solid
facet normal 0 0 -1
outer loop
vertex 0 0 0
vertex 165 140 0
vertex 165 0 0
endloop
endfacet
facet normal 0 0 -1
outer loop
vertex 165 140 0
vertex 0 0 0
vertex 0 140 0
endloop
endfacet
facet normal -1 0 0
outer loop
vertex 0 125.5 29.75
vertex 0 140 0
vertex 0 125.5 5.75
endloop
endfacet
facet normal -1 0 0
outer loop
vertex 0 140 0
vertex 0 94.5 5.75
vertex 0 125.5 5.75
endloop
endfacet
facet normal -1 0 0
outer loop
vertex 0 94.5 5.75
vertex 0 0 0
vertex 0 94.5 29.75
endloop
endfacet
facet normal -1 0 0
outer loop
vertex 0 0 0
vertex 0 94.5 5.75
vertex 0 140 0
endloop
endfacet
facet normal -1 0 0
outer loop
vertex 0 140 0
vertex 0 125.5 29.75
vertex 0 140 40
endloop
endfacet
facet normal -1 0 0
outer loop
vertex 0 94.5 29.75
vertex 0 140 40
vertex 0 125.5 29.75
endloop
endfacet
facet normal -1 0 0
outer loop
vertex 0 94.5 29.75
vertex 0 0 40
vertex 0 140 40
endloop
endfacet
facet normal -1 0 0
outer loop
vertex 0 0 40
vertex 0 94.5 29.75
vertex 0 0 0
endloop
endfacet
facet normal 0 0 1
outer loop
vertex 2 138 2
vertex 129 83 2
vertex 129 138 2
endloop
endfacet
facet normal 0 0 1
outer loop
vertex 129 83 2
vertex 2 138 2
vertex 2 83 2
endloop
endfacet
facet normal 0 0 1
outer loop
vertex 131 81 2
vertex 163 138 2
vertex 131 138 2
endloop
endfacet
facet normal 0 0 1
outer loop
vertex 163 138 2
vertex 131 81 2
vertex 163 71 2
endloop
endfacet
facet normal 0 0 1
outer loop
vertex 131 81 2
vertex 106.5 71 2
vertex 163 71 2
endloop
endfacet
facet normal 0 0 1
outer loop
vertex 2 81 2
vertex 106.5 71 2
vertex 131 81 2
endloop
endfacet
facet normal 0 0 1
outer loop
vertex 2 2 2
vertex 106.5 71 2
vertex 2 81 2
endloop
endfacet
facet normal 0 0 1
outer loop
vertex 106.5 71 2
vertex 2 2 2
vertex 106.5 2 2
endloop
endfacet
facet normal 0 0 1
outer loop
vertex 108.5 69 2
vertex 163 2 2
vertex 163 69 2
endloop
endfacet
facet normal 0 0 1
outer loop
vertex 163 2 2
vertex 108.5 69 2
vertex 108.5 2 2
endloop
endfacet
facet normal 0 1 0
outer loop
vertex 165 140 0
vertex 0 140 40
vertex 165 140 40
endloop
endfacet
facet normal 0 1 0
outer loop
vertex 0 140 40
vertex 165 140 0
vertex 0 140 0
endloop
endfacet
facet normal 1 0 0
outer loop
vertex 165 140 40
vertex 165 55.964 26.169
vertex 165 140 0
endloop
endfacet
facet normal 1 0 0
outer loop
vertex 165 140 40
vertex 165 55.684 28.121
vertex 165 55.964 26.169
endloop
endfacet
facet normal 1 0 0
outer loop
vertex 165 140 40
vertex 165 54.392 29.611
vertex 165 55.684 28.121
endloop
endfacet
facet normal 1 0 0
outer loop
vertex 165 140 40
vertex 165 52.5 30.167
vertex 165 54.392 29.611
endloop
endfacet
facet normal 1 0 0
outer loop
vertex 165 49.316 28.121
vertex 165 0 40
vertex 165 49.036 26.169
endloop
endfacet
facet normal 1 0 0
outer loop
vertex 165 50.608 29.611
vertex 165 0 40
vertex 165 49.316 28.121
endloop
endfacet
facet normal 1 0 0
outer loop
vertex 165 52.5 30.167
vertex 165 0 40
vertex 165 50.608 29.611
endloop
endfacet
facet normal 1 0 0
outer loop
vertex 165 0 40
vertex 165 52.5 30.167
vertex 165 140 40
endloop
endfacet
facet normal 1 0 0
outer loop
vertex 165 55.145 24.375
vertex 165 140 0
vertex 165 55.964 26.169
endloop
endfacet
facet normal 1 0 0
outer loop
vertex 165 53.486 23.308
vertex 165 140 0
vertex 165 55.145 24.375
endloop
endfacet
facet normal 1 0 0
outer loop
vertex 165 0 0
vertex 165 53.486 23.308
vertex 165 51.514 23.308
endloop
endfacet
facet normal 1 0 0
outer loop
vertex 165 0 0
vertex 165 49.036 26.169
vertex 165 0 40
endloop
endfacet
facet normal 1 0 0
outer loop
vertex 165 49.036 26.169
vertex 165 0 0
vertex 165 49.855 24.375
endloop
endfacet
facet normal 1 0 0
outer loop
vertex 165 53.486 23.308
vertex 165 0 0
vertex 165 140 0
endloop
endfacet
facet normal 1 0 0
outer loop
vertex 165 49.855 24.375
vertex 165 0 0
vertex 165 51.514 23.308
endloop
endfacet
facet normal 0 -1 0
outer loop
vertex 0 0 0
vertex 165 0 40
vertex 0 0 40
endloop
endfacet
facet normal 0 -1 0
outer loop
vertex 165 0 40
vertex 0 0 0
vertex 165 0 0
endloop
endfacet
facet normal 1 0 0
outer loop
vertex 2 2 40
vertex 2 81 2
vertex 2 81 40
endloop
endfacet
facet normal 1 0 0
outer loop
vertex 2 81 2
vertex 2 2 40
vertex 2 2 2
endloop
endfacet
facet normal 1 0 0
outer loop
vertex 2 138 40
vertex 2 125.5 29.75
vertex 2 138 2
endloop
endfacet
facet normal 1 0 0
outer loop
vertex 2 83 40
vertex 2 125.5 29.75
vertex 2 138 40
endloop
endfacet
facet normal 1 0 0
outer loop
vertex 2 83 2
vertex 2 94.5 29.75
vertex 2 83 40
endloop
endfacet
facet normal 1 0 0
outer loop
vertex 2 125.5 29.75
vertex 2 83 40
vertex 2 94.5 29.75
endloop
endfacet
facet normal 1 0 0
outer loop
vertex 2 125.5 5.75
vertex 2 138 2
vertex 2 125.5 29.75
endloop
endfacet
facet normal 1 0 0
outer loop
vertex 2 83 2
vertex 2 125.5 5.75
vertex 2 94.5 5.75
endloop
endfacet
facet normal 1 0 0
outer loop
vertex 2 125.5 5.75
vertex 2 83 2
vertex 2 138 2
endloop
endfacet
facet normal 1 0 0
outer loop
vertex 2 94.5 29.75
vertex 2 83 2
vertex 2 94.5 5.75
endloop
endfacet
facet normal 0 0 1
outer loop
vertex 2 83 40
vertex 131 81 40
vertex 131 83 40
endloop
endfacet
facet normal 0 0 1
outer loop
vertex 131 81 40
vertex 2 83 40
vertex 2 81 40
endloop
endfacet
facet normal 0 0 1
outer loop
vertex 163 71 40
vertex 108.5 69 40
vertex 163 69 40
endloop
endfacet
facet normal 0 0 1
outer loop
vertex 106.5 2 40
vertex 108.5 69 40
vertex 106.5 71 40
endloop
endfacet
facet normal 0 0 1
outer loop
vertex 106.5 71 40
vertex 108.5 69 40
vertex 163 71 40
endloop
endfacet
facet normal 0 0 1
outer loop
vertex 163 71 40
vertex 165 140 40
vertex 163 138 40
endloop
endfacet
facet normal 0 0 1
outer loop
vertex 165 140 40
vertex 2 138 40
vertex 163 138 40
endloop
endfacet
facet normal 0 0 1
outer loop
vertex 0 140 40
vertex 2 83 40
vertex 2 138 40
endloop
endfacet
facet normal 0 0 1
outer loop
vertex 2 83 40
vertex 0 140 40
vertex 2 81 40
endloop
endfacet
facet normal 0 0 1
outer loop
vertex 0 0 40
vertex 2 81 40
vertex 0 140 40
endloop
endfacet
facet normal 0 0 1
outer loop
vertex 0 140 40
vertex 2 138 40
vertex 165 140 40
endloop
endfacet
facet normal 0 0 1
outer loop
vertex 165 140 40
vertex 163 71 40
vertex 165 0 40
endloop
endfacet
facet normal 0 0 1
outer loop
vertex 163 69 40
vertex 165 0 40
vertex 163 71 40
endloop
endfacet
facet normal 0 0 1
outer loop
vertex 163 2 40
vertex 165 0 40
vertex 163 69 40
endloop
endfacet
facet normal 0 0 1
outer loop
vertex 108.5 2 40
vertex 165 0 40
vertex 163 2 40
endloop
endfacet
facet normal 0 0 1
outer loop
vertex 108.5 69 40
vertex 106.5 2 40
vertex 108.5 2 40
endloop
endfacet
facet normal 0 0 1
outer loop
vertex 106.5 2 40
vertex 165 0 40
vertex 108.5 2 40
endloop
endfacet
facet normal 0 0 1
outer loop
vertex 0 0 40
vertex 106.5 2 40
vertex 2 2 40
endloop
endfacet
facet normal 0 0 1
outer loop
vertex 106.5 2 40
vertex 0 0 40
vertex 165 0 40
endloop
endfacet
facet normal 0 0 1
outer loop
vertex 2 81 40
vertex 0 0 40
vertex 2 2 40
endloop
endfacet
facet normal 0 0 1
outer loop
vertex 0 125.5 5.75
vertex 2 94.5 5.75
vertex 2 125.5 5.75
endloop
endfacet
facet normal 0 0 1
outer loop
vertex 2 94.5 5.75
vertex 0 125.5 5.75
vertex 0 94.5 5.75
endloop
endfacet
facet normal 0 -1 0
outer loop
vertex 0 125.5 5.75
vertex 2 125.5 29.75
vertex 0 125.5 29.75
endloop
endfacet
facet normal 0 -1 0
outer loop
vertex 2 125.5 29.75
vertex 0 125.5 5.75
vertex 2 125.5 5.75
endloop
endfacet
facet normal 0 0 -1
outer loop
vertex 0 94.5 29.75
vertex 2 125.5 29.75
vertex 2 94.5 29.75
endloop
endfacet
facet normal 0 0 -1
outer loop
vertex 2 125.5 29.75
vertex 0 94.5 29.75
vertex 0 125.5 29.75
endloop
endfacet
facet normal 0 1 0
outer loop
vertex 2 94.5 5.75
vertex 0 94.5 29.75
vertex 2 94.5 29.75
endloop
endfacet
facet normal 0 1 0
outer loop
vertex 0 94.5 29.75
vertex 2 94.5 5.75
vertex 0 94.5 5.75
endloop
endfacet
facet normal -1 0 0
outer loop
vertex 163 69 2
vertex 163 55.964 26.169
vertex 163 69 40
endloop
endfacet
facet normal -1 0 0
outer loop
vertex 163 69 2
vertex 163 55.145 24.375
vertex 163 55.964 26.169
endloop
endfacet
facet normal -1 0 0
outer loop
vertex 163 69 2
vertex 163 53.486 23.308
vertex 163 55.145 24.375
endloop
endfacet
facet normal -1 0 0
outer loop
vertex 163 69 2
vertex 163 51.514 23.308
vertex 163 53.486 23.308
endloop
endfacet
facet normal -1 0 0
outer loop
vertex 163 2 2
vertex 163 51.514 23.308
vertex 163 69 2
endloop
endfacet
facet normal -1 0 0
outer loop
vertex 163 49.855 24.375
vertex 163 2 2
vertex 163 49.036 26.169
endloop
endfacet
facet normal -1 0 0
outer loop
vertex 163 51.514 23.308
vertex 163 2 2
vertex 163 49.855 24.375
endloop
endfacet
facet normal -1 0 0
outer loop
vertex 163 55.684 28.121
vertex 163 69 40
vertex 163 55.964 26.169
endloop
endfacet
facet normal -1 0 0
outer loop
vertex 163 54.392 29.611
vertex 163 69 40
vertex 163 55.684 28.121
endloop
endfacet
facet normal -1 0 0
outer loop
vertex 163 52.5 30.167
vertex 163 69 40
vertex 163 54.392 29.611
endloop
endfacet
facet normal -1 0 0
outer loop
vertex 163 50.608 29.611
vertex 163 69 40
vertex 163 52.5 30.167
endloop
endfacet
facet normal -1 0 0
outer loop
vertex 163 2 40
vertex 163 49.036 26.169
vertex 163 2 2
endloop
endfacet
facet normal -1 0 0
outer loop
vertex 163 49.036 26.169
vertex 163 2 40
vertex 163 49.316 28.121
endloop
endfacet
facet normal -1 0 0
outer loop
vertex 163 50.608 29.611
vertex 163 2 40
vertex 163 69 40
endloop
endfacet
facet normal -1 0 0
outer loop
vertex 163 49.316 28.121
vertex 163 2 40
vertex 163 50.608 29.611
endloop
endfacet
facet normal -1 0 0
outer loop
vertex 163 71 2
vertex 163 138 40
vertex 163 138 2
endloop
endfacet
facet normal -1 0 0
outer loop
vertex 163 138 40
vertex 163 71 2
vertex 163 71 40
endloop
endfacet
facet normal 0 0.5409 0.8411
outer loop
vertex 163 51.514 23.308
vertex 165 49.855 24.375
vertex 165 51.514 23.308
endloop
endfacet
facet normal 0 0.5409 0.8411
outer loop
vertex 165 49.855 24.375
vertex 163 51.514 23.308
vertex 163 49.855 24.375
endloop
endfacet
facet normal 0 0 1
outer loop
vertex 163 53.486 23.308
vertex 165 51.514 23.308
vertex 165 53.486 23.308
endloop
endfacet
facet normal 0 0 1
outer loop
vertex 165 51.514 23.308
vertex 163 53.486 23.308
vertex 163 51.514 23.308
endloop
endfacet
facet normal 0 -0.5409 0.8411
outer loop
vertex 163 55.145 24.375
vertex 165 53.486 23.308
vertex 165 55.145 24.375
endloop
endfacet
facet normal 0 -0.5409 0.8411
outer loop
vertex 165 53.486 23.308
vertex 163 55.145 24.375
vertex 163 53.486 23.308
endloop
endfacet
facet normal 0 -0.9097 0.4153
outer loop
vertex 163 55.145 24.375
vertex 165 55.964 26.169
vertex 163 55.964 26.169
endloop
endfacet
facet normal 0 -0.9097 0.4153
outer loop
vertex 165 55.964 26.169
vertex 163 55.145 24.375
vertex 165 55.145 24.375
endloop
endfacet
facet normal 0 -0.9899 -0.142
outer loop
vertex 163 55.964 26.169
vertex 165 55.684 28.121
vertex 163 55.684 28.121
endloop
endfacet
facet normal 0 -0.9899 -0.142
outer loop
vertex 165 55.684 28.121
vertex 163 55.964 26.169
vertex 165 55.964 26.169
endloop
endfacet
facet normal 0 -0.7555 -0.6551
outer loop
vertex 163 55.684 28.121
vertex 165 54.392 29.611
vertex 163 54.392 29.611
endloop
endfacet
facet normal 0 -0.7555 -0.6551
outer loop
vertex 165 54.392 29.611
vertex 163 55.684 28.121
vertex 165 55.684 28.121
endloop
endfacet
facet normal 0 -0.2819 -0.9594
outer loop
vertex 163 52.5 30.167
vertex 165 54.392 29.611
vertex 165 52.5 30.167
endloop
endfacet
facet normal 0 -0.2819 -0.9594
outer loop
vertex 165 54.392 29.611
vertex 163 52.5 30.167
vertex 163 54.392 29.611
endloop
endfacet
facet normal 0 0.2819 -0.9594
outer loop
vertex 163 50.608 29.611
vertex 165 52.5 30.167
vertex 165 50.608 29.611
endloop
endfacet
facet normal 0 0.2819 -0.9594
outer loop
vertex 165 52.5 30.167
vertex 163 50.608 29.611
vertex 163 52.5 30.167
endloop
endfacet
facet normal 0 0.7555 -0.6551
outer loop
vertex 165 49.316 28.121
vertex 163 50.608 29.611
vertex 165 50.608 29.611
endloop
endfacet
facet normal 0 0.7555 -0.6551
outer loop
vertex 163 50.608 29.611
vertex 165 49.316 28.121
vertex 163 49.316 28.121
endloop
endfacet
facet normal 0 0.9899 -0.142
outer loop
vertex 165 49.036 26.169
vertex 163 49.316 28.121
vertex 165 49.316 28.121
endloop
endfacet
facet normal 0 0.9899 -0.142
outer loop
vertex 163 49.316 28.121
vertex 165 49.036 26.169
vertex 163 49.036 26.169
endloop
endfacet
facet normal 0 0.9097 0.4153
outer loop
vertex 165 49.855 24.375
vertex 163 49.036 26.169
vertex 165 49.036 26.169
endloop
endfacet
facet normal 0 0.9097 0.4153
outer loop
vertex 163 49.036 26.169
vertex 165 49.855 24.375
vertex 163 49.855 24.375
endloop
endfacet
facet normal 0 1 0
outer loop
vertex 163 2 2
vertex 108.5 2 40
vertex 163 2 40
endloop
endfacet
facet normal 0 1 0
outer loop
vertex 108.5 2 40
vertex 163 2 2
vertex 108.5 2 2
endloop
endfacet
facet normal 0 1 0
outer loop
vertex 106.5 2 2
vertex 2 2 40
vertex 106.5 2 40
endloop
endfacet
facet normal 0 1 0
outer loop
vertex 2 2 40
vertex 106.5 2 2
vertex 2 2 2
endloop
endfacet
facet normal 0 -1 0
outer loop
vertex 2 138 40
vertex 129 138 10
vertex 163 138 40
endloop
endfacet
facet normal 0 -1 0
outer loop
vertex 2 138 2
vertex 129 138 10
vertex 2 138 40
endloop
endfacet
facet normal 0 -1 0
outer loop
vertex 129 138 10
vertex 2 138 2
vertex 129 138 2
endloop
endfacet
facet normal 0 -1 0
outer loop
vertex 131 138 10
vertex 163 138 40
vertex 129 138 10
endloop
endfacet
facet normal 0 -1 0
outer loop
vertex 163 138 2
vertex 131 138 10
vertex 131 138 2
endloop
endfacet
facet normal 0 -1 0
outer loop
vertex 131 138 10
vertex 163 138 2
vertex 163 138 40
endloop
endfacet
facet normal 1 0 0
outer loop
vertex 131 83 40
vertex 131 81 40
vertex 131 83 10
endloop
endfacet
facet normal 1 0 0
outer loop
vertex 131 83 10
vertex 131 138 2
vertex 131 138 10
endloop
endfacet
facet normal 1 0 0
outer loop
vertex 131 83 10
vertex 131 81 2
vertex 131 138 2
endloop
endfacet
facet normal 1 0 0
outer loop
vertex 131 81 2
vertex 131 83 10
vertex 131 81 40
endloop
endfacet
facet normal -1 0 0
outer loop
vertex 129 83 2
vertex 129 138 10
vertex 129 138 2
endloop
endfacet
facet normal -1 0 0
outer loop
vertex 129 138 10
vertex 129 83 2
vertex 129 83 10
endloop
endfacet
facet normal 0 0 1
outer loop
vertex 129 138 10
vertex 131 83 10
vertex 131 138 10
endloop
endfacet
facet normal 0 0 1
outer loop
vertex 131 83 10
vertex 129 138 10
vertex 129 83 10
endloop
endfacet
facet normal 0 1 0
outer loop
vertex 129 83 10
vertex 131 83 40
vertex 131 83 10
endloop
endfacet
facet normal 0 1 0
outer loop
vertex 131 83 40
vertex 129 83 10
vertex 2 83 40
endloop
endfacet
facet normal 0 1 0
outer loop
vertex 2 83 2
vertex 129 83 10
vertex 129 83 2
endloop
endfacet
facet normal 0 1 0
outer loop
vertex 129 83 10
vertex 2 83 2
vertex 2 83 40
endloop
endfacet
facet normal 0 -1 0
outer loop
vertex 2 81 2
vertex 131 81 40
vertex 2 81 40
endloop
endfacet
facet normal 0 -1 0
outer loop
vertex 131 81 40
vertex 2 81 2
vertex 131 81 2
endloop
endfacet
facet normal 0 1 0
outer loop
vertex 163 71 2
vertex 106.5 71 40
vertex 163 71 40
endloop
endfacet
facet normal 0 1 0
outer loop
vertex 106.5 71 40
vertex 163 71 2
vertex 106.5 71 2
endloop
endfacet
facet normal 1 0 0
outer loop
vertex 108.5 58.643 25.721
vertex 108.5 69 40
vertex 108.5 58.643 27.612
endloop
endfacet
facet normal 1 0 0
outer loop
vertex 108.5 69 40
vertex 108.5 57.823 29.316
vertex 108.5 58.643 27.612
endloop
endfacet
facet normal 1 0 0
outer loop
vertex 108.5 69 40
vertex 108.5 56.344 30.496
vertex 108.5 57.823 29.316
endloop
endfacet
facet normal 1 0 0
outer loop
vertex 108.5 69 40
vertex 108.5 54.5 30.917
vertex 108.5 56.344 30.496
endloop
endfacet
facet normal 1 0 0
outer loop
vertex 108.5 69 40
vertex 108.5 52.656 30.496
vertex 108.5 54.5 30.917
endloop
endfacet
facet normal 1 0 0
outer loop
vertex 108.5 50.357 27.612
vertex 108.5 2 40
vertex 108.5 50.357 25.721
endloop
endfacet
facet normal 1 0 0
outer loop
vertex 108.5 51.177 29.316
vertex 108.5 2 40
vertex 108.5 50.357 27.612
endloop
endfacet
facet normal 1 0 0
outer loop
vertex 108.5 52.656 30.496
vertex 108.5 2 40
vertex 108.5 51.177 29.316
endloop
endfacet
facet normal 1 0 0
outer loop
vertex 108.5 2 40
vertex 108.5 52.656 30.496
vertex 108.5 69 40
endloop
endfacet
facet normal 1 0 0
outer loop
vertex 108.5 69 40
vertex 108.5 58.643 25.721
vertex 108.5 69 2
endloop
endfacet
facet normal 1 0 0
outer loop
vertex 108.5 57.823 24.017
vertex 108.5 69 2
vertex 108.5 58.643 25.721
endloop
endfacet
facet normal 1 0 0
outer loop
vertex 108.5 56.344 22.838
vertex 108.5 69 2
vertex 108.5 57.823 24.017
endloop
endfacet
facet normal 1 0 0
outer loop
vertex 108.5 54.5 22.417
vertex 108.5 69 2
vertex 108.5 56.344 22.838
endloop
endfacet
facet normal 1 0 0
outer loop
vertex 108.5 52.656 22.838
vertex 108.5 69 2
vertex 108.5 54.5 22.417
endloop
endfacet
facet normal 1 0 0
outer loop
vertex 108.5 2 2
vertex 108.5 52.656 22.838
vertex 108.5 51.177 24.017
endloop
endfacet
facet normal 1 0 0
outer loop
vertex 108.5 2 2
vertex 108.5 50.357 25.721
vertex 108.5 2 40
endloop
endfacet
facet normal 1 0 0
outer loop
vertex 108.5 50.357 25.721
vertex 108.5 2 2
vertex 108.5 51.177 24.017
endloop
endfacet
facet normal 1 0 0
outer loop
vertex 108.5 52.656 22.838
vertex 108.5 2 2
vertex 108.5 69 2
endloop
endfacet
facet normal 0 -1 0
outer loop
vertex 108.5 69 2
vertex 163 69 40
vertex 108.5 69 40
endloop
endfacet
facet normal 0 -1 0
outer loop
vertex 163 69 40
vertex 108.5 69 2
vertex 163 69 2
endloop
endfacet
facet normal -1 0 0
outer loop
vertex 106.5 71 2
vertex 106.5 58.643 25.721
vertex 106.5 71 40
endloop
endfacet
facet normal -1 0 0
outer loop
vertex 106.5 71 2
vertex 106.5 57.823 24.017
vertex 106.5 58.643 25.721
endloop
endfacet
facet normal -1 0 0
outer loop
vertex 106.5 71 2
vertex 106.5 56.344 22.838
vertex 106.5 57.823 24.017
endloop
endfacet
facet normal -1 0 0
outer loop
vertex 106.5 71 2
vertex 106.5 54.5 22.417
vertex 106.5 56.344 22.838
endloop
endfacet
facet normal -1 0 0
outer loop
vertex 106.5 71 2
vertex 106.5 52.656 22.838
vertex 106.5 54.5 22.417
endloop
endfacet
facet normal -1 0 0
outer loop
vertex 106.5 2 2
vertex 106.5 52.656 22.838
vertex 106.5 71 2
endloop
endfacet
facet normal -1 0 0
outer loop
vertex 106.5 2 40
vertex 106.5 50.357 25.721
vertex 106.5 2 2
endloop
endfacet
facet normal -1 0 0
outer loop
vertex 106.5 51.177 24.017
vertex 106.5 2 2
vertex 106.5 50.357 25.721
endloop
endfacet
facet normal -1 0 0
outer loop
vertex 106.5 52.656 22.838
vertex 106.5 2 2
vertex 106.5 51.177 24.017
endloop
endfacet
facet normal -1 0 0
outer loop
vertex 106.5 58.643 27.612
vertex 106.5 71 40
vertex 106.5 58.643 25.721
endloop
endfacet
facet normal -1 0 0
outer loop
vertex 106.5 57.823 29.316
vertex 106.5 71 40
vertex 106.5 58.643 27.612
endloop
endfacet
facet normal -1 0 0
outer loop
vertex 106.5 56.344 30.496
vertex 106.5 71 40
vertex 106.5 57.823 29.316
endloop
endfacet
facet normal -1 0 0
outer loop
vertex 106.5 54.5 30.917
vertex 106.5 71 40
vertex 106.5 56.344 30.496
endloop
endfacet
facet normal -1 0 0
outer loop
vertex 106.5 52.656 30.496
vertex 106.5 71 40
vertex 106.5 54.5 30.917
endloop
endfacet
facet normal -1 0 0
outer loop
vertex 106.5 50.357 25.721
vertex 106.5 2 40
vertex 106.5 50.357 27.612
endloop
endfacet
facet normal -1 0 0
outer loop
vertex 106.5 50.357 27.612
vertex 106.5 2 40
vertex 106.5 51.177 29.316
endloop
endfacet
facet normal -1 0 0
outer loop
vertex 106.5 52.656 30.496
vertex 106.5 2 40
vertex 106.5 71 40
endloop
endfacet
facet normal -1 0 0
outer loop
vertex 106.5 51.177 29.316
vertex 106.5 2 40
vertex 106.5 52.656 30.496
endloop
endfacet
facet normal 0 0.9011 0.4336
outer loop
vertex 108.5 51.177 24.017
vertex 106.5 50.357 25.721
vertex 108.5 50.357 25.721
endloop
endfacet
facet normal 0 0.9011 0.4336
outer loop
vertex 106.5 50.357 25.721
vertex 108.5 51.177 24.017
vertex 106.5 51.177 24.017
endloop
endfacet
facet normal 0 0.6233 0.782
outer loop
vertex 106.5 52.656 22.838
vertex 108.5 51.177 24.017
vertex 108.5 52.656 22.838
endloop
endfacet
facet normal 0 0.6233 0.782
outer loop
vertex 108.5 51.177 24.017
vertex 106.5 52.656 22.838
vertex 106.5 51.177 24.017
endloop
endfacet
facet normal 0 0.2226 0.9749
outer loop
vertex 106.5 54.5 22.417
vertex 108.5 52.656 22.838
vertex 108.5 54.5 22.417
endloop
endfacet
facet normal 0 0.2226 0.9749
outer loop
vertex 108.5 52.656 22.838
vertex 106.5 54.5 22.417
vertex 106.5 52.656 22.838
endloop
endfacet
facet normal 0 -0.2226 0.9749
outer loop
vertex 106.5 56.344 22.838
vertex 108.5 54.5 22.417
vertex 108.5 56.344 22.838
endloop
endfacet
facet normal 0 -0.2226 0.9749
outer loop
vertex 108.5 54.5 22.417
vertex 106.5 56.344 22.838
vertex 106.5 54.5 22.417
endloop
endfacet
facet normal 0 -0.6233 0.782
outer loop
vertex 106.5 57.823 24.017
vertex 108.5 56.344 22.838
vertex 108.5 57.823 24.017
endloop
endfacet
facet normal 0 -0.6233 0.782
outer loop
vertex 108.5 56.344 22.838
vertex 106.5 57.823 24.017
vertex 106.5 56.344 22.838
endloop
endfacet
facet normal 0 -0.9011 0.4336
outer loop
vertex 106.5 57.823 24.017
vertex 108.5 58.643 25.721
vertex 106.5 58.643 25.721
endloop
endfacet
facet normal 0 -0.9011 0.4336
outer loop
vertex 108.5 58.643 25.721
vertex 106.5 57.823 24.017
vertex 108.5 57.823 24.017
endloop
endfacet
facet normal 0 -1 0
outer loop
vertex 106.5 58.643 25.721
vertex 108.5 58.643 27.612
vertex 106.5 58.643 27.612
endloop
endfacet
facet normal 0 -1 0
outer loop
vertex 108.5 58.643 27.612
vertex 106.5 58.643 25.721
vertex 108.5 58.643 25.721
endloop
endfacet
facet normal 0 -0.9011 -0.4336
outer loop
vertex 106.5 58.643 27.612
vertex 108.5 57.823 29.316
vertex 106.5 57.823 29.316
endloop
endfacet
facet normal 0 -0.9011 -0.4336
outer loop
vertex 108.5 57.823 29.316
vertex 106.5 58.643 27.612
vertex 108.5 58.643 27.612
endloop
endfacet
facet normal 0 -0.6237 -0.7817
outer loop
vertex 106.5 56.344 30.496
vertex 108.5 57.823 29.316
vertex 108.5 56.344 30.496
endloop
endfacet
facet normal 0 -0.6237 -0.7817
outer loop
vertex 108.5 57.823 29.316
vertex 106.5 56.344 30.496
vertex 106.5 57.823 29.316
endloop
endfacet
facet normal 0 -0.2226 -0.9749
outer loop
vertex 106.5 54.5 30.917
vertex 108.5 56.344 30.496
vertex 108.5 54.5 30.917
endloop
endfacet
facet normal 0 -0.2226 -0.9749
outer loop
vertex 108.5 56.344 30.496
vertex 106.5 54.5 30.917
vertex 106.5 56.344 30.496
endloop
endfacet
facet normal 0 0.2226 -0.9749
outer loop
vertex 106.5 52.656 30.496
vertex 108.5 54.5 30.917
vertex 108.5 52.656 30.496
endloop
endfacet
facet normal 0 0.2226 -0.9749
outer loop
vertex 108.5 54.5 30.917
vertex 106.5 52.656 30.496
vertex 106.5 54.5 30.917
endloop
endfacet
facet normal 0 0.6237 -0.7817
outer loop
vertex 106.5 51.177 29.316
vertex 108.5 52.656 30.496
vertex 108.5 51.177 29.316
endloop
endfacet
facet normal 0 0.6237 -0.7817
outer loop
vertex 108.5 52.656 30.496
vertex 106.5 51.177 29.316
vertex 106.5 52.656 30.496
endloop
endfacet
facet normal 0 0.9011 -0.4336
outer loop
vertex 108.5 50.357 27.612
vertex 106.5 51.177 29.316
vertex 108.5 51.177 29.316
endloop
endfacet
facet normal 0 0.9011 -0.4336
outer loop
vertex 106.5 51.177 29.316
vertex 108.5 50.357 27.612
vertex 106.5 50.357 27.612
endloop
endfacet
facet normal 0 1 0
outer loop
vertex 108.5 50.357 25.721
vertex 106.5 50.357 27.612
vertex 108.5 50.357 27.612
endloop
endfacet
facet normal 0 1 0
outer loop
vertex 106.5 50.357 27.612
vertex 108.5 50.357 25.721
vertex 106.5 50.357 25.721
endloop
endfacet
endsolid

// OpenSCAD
PCBLength = 63;
PCBWidth = 44.5;
PCBHeight = 20;

PowerSupplyLength = 125;
PowerSupplyWidth = 50;
PowerSupplyHeight = 31.5;
PowerSupplyX = 0;
PowerSupplyY = 85;
PowerPlugWidth = 31;
PowerPlugHeight = 24;
PowerPlugHorizOffset = (PowerSupplyWidth - PowerPlugWidth)/2;
PowerPlugVertOffset = (PowerSupplyHeight - PowerPlugHeight)/2;

WallWidth = 2;

CaseLength = 165;
CaseWidth = 140;
CaseHeight = 40;

// Bottom
linear_extrude(WallWidth)
    square([CaseLength, CaseWidth]);
    
// Back

color("red")
    translate([WallWidth, 0, 0])
    rotate([0, -90, 0])
    linear_extrude(WallWidth)
    difference() {
        square([CaseHeight, CaseWidth]);
        // Power Plug
        translate([WallWidth+PowerPlugVertOffset, PowerSupplyY + PowerPlugHorizOffset, 0])
            square([PowerPlugHeight, PowerPlugWidth]);
    };

// Front

color("green")
    translate([CaseLength, 0, 0])
    rotate([0, -90, 0])
    linear_extrude(WallWidth)
    difference() {
        square([CaseHeight, CaseWidth]);
        // Output
        translate([CaseHeight*2/3, PCBLength*5/6, 0])
            circle(d=7);
    };

// Left

color("blue")
    translate([0, WallWidth, 0])
    rotate([90, 0, 0])
    linear_extrude(WallWidth)
    square([CaseLength, CaseHeight]);

// Right

color("brown")
    translate([0, CaseWidth, 0])
    rotate([90, 0, 0])
    linear_extrude(WallWidth)
    square([CaseLength, CaseHeight]);
    
    
// Power Supply Front

{
    $lengthpsf = PowerSupplyWidth + WallWidth*4;
    color("olive")
        translate([PowerSupplyLength+WallWidth*2+2, CaseWidth-$lengthpsf, 0])
        rotate([0, -90, 0])
        linear_extrude(WallWidth)
        square([10, $lengthpsf]);
}
    
// Power Supply Side

{
    $lengthpss = PowerSupplyLength + WallWidth*3;
    color("lime")
        translate([0, PowerSupplyY-WallWidth, 0])
        rotate([90, 0, 0])
        linear_extrude(WallWidth)
        square([$lengthpss, CaseHeight]);
}

// PCB Side

{
    $lengthcs = PCBWidth + WallWidth*6;
    color("orange")
        translate([CaseLength-$lengthcs, PCBLength + WallWidth*4, 0])
        rotate([90, 0, 0])
        linear_extrude(WallWidth)
        square([$lengthcs, CaseHeight]);
}

// PCB Front

{
    $lengthcf = PCBLength + WallWidth*3;
    color("lightblue")
        translate([CaseLength - PCBWidth - WallWidth*6, WallWidth, 0])
        rotate([0, -90, 0])
        linear_extrude(WallWidth)
        difference() {
            square([CaseHeight, $lengthcf]);
            translate([CaseHeight*2/3, PCBLength*5/6, 0])
                circle(d=8.5);
        }
}
    
// PCB
translate([CaseLength - PCBWidth - WallWidth - 2, PCBLength + WallWidth + 2, WallWidth]) {
    rotate([0, 0, -90]) {
        %linear_extrude(PCBHeight)
            square([PCBLength, PCBWidth]);
        translate([PCBLength/6, PCBWidth/2, PCBHeight])
            color("pink")
            %text("PCB");
    }      
}

// Inner plug
translate([125, 54, 27]) {
    rotate([0, -90, 0])
    %union() {
        linear_extrude(16)
            circle(d=10);
        translate([0, 0, 16])
            linear_extrude(5.4)
            circle(d=7);
    }
}

// Power Supply 
translate([WallWidth+PowerSupplyX, PowerSupplyY, WallWidth]) {
    %linear_extrude(PowerSupplyHeight)
        square([PowerSupplyLength, PowerSupplyWidth]);
    translate([PowerSupplyLength/5, PowerSupplyWidth/2, PowerSupplyHeight])
        color("pink")
        %text("Power Supply");
}
